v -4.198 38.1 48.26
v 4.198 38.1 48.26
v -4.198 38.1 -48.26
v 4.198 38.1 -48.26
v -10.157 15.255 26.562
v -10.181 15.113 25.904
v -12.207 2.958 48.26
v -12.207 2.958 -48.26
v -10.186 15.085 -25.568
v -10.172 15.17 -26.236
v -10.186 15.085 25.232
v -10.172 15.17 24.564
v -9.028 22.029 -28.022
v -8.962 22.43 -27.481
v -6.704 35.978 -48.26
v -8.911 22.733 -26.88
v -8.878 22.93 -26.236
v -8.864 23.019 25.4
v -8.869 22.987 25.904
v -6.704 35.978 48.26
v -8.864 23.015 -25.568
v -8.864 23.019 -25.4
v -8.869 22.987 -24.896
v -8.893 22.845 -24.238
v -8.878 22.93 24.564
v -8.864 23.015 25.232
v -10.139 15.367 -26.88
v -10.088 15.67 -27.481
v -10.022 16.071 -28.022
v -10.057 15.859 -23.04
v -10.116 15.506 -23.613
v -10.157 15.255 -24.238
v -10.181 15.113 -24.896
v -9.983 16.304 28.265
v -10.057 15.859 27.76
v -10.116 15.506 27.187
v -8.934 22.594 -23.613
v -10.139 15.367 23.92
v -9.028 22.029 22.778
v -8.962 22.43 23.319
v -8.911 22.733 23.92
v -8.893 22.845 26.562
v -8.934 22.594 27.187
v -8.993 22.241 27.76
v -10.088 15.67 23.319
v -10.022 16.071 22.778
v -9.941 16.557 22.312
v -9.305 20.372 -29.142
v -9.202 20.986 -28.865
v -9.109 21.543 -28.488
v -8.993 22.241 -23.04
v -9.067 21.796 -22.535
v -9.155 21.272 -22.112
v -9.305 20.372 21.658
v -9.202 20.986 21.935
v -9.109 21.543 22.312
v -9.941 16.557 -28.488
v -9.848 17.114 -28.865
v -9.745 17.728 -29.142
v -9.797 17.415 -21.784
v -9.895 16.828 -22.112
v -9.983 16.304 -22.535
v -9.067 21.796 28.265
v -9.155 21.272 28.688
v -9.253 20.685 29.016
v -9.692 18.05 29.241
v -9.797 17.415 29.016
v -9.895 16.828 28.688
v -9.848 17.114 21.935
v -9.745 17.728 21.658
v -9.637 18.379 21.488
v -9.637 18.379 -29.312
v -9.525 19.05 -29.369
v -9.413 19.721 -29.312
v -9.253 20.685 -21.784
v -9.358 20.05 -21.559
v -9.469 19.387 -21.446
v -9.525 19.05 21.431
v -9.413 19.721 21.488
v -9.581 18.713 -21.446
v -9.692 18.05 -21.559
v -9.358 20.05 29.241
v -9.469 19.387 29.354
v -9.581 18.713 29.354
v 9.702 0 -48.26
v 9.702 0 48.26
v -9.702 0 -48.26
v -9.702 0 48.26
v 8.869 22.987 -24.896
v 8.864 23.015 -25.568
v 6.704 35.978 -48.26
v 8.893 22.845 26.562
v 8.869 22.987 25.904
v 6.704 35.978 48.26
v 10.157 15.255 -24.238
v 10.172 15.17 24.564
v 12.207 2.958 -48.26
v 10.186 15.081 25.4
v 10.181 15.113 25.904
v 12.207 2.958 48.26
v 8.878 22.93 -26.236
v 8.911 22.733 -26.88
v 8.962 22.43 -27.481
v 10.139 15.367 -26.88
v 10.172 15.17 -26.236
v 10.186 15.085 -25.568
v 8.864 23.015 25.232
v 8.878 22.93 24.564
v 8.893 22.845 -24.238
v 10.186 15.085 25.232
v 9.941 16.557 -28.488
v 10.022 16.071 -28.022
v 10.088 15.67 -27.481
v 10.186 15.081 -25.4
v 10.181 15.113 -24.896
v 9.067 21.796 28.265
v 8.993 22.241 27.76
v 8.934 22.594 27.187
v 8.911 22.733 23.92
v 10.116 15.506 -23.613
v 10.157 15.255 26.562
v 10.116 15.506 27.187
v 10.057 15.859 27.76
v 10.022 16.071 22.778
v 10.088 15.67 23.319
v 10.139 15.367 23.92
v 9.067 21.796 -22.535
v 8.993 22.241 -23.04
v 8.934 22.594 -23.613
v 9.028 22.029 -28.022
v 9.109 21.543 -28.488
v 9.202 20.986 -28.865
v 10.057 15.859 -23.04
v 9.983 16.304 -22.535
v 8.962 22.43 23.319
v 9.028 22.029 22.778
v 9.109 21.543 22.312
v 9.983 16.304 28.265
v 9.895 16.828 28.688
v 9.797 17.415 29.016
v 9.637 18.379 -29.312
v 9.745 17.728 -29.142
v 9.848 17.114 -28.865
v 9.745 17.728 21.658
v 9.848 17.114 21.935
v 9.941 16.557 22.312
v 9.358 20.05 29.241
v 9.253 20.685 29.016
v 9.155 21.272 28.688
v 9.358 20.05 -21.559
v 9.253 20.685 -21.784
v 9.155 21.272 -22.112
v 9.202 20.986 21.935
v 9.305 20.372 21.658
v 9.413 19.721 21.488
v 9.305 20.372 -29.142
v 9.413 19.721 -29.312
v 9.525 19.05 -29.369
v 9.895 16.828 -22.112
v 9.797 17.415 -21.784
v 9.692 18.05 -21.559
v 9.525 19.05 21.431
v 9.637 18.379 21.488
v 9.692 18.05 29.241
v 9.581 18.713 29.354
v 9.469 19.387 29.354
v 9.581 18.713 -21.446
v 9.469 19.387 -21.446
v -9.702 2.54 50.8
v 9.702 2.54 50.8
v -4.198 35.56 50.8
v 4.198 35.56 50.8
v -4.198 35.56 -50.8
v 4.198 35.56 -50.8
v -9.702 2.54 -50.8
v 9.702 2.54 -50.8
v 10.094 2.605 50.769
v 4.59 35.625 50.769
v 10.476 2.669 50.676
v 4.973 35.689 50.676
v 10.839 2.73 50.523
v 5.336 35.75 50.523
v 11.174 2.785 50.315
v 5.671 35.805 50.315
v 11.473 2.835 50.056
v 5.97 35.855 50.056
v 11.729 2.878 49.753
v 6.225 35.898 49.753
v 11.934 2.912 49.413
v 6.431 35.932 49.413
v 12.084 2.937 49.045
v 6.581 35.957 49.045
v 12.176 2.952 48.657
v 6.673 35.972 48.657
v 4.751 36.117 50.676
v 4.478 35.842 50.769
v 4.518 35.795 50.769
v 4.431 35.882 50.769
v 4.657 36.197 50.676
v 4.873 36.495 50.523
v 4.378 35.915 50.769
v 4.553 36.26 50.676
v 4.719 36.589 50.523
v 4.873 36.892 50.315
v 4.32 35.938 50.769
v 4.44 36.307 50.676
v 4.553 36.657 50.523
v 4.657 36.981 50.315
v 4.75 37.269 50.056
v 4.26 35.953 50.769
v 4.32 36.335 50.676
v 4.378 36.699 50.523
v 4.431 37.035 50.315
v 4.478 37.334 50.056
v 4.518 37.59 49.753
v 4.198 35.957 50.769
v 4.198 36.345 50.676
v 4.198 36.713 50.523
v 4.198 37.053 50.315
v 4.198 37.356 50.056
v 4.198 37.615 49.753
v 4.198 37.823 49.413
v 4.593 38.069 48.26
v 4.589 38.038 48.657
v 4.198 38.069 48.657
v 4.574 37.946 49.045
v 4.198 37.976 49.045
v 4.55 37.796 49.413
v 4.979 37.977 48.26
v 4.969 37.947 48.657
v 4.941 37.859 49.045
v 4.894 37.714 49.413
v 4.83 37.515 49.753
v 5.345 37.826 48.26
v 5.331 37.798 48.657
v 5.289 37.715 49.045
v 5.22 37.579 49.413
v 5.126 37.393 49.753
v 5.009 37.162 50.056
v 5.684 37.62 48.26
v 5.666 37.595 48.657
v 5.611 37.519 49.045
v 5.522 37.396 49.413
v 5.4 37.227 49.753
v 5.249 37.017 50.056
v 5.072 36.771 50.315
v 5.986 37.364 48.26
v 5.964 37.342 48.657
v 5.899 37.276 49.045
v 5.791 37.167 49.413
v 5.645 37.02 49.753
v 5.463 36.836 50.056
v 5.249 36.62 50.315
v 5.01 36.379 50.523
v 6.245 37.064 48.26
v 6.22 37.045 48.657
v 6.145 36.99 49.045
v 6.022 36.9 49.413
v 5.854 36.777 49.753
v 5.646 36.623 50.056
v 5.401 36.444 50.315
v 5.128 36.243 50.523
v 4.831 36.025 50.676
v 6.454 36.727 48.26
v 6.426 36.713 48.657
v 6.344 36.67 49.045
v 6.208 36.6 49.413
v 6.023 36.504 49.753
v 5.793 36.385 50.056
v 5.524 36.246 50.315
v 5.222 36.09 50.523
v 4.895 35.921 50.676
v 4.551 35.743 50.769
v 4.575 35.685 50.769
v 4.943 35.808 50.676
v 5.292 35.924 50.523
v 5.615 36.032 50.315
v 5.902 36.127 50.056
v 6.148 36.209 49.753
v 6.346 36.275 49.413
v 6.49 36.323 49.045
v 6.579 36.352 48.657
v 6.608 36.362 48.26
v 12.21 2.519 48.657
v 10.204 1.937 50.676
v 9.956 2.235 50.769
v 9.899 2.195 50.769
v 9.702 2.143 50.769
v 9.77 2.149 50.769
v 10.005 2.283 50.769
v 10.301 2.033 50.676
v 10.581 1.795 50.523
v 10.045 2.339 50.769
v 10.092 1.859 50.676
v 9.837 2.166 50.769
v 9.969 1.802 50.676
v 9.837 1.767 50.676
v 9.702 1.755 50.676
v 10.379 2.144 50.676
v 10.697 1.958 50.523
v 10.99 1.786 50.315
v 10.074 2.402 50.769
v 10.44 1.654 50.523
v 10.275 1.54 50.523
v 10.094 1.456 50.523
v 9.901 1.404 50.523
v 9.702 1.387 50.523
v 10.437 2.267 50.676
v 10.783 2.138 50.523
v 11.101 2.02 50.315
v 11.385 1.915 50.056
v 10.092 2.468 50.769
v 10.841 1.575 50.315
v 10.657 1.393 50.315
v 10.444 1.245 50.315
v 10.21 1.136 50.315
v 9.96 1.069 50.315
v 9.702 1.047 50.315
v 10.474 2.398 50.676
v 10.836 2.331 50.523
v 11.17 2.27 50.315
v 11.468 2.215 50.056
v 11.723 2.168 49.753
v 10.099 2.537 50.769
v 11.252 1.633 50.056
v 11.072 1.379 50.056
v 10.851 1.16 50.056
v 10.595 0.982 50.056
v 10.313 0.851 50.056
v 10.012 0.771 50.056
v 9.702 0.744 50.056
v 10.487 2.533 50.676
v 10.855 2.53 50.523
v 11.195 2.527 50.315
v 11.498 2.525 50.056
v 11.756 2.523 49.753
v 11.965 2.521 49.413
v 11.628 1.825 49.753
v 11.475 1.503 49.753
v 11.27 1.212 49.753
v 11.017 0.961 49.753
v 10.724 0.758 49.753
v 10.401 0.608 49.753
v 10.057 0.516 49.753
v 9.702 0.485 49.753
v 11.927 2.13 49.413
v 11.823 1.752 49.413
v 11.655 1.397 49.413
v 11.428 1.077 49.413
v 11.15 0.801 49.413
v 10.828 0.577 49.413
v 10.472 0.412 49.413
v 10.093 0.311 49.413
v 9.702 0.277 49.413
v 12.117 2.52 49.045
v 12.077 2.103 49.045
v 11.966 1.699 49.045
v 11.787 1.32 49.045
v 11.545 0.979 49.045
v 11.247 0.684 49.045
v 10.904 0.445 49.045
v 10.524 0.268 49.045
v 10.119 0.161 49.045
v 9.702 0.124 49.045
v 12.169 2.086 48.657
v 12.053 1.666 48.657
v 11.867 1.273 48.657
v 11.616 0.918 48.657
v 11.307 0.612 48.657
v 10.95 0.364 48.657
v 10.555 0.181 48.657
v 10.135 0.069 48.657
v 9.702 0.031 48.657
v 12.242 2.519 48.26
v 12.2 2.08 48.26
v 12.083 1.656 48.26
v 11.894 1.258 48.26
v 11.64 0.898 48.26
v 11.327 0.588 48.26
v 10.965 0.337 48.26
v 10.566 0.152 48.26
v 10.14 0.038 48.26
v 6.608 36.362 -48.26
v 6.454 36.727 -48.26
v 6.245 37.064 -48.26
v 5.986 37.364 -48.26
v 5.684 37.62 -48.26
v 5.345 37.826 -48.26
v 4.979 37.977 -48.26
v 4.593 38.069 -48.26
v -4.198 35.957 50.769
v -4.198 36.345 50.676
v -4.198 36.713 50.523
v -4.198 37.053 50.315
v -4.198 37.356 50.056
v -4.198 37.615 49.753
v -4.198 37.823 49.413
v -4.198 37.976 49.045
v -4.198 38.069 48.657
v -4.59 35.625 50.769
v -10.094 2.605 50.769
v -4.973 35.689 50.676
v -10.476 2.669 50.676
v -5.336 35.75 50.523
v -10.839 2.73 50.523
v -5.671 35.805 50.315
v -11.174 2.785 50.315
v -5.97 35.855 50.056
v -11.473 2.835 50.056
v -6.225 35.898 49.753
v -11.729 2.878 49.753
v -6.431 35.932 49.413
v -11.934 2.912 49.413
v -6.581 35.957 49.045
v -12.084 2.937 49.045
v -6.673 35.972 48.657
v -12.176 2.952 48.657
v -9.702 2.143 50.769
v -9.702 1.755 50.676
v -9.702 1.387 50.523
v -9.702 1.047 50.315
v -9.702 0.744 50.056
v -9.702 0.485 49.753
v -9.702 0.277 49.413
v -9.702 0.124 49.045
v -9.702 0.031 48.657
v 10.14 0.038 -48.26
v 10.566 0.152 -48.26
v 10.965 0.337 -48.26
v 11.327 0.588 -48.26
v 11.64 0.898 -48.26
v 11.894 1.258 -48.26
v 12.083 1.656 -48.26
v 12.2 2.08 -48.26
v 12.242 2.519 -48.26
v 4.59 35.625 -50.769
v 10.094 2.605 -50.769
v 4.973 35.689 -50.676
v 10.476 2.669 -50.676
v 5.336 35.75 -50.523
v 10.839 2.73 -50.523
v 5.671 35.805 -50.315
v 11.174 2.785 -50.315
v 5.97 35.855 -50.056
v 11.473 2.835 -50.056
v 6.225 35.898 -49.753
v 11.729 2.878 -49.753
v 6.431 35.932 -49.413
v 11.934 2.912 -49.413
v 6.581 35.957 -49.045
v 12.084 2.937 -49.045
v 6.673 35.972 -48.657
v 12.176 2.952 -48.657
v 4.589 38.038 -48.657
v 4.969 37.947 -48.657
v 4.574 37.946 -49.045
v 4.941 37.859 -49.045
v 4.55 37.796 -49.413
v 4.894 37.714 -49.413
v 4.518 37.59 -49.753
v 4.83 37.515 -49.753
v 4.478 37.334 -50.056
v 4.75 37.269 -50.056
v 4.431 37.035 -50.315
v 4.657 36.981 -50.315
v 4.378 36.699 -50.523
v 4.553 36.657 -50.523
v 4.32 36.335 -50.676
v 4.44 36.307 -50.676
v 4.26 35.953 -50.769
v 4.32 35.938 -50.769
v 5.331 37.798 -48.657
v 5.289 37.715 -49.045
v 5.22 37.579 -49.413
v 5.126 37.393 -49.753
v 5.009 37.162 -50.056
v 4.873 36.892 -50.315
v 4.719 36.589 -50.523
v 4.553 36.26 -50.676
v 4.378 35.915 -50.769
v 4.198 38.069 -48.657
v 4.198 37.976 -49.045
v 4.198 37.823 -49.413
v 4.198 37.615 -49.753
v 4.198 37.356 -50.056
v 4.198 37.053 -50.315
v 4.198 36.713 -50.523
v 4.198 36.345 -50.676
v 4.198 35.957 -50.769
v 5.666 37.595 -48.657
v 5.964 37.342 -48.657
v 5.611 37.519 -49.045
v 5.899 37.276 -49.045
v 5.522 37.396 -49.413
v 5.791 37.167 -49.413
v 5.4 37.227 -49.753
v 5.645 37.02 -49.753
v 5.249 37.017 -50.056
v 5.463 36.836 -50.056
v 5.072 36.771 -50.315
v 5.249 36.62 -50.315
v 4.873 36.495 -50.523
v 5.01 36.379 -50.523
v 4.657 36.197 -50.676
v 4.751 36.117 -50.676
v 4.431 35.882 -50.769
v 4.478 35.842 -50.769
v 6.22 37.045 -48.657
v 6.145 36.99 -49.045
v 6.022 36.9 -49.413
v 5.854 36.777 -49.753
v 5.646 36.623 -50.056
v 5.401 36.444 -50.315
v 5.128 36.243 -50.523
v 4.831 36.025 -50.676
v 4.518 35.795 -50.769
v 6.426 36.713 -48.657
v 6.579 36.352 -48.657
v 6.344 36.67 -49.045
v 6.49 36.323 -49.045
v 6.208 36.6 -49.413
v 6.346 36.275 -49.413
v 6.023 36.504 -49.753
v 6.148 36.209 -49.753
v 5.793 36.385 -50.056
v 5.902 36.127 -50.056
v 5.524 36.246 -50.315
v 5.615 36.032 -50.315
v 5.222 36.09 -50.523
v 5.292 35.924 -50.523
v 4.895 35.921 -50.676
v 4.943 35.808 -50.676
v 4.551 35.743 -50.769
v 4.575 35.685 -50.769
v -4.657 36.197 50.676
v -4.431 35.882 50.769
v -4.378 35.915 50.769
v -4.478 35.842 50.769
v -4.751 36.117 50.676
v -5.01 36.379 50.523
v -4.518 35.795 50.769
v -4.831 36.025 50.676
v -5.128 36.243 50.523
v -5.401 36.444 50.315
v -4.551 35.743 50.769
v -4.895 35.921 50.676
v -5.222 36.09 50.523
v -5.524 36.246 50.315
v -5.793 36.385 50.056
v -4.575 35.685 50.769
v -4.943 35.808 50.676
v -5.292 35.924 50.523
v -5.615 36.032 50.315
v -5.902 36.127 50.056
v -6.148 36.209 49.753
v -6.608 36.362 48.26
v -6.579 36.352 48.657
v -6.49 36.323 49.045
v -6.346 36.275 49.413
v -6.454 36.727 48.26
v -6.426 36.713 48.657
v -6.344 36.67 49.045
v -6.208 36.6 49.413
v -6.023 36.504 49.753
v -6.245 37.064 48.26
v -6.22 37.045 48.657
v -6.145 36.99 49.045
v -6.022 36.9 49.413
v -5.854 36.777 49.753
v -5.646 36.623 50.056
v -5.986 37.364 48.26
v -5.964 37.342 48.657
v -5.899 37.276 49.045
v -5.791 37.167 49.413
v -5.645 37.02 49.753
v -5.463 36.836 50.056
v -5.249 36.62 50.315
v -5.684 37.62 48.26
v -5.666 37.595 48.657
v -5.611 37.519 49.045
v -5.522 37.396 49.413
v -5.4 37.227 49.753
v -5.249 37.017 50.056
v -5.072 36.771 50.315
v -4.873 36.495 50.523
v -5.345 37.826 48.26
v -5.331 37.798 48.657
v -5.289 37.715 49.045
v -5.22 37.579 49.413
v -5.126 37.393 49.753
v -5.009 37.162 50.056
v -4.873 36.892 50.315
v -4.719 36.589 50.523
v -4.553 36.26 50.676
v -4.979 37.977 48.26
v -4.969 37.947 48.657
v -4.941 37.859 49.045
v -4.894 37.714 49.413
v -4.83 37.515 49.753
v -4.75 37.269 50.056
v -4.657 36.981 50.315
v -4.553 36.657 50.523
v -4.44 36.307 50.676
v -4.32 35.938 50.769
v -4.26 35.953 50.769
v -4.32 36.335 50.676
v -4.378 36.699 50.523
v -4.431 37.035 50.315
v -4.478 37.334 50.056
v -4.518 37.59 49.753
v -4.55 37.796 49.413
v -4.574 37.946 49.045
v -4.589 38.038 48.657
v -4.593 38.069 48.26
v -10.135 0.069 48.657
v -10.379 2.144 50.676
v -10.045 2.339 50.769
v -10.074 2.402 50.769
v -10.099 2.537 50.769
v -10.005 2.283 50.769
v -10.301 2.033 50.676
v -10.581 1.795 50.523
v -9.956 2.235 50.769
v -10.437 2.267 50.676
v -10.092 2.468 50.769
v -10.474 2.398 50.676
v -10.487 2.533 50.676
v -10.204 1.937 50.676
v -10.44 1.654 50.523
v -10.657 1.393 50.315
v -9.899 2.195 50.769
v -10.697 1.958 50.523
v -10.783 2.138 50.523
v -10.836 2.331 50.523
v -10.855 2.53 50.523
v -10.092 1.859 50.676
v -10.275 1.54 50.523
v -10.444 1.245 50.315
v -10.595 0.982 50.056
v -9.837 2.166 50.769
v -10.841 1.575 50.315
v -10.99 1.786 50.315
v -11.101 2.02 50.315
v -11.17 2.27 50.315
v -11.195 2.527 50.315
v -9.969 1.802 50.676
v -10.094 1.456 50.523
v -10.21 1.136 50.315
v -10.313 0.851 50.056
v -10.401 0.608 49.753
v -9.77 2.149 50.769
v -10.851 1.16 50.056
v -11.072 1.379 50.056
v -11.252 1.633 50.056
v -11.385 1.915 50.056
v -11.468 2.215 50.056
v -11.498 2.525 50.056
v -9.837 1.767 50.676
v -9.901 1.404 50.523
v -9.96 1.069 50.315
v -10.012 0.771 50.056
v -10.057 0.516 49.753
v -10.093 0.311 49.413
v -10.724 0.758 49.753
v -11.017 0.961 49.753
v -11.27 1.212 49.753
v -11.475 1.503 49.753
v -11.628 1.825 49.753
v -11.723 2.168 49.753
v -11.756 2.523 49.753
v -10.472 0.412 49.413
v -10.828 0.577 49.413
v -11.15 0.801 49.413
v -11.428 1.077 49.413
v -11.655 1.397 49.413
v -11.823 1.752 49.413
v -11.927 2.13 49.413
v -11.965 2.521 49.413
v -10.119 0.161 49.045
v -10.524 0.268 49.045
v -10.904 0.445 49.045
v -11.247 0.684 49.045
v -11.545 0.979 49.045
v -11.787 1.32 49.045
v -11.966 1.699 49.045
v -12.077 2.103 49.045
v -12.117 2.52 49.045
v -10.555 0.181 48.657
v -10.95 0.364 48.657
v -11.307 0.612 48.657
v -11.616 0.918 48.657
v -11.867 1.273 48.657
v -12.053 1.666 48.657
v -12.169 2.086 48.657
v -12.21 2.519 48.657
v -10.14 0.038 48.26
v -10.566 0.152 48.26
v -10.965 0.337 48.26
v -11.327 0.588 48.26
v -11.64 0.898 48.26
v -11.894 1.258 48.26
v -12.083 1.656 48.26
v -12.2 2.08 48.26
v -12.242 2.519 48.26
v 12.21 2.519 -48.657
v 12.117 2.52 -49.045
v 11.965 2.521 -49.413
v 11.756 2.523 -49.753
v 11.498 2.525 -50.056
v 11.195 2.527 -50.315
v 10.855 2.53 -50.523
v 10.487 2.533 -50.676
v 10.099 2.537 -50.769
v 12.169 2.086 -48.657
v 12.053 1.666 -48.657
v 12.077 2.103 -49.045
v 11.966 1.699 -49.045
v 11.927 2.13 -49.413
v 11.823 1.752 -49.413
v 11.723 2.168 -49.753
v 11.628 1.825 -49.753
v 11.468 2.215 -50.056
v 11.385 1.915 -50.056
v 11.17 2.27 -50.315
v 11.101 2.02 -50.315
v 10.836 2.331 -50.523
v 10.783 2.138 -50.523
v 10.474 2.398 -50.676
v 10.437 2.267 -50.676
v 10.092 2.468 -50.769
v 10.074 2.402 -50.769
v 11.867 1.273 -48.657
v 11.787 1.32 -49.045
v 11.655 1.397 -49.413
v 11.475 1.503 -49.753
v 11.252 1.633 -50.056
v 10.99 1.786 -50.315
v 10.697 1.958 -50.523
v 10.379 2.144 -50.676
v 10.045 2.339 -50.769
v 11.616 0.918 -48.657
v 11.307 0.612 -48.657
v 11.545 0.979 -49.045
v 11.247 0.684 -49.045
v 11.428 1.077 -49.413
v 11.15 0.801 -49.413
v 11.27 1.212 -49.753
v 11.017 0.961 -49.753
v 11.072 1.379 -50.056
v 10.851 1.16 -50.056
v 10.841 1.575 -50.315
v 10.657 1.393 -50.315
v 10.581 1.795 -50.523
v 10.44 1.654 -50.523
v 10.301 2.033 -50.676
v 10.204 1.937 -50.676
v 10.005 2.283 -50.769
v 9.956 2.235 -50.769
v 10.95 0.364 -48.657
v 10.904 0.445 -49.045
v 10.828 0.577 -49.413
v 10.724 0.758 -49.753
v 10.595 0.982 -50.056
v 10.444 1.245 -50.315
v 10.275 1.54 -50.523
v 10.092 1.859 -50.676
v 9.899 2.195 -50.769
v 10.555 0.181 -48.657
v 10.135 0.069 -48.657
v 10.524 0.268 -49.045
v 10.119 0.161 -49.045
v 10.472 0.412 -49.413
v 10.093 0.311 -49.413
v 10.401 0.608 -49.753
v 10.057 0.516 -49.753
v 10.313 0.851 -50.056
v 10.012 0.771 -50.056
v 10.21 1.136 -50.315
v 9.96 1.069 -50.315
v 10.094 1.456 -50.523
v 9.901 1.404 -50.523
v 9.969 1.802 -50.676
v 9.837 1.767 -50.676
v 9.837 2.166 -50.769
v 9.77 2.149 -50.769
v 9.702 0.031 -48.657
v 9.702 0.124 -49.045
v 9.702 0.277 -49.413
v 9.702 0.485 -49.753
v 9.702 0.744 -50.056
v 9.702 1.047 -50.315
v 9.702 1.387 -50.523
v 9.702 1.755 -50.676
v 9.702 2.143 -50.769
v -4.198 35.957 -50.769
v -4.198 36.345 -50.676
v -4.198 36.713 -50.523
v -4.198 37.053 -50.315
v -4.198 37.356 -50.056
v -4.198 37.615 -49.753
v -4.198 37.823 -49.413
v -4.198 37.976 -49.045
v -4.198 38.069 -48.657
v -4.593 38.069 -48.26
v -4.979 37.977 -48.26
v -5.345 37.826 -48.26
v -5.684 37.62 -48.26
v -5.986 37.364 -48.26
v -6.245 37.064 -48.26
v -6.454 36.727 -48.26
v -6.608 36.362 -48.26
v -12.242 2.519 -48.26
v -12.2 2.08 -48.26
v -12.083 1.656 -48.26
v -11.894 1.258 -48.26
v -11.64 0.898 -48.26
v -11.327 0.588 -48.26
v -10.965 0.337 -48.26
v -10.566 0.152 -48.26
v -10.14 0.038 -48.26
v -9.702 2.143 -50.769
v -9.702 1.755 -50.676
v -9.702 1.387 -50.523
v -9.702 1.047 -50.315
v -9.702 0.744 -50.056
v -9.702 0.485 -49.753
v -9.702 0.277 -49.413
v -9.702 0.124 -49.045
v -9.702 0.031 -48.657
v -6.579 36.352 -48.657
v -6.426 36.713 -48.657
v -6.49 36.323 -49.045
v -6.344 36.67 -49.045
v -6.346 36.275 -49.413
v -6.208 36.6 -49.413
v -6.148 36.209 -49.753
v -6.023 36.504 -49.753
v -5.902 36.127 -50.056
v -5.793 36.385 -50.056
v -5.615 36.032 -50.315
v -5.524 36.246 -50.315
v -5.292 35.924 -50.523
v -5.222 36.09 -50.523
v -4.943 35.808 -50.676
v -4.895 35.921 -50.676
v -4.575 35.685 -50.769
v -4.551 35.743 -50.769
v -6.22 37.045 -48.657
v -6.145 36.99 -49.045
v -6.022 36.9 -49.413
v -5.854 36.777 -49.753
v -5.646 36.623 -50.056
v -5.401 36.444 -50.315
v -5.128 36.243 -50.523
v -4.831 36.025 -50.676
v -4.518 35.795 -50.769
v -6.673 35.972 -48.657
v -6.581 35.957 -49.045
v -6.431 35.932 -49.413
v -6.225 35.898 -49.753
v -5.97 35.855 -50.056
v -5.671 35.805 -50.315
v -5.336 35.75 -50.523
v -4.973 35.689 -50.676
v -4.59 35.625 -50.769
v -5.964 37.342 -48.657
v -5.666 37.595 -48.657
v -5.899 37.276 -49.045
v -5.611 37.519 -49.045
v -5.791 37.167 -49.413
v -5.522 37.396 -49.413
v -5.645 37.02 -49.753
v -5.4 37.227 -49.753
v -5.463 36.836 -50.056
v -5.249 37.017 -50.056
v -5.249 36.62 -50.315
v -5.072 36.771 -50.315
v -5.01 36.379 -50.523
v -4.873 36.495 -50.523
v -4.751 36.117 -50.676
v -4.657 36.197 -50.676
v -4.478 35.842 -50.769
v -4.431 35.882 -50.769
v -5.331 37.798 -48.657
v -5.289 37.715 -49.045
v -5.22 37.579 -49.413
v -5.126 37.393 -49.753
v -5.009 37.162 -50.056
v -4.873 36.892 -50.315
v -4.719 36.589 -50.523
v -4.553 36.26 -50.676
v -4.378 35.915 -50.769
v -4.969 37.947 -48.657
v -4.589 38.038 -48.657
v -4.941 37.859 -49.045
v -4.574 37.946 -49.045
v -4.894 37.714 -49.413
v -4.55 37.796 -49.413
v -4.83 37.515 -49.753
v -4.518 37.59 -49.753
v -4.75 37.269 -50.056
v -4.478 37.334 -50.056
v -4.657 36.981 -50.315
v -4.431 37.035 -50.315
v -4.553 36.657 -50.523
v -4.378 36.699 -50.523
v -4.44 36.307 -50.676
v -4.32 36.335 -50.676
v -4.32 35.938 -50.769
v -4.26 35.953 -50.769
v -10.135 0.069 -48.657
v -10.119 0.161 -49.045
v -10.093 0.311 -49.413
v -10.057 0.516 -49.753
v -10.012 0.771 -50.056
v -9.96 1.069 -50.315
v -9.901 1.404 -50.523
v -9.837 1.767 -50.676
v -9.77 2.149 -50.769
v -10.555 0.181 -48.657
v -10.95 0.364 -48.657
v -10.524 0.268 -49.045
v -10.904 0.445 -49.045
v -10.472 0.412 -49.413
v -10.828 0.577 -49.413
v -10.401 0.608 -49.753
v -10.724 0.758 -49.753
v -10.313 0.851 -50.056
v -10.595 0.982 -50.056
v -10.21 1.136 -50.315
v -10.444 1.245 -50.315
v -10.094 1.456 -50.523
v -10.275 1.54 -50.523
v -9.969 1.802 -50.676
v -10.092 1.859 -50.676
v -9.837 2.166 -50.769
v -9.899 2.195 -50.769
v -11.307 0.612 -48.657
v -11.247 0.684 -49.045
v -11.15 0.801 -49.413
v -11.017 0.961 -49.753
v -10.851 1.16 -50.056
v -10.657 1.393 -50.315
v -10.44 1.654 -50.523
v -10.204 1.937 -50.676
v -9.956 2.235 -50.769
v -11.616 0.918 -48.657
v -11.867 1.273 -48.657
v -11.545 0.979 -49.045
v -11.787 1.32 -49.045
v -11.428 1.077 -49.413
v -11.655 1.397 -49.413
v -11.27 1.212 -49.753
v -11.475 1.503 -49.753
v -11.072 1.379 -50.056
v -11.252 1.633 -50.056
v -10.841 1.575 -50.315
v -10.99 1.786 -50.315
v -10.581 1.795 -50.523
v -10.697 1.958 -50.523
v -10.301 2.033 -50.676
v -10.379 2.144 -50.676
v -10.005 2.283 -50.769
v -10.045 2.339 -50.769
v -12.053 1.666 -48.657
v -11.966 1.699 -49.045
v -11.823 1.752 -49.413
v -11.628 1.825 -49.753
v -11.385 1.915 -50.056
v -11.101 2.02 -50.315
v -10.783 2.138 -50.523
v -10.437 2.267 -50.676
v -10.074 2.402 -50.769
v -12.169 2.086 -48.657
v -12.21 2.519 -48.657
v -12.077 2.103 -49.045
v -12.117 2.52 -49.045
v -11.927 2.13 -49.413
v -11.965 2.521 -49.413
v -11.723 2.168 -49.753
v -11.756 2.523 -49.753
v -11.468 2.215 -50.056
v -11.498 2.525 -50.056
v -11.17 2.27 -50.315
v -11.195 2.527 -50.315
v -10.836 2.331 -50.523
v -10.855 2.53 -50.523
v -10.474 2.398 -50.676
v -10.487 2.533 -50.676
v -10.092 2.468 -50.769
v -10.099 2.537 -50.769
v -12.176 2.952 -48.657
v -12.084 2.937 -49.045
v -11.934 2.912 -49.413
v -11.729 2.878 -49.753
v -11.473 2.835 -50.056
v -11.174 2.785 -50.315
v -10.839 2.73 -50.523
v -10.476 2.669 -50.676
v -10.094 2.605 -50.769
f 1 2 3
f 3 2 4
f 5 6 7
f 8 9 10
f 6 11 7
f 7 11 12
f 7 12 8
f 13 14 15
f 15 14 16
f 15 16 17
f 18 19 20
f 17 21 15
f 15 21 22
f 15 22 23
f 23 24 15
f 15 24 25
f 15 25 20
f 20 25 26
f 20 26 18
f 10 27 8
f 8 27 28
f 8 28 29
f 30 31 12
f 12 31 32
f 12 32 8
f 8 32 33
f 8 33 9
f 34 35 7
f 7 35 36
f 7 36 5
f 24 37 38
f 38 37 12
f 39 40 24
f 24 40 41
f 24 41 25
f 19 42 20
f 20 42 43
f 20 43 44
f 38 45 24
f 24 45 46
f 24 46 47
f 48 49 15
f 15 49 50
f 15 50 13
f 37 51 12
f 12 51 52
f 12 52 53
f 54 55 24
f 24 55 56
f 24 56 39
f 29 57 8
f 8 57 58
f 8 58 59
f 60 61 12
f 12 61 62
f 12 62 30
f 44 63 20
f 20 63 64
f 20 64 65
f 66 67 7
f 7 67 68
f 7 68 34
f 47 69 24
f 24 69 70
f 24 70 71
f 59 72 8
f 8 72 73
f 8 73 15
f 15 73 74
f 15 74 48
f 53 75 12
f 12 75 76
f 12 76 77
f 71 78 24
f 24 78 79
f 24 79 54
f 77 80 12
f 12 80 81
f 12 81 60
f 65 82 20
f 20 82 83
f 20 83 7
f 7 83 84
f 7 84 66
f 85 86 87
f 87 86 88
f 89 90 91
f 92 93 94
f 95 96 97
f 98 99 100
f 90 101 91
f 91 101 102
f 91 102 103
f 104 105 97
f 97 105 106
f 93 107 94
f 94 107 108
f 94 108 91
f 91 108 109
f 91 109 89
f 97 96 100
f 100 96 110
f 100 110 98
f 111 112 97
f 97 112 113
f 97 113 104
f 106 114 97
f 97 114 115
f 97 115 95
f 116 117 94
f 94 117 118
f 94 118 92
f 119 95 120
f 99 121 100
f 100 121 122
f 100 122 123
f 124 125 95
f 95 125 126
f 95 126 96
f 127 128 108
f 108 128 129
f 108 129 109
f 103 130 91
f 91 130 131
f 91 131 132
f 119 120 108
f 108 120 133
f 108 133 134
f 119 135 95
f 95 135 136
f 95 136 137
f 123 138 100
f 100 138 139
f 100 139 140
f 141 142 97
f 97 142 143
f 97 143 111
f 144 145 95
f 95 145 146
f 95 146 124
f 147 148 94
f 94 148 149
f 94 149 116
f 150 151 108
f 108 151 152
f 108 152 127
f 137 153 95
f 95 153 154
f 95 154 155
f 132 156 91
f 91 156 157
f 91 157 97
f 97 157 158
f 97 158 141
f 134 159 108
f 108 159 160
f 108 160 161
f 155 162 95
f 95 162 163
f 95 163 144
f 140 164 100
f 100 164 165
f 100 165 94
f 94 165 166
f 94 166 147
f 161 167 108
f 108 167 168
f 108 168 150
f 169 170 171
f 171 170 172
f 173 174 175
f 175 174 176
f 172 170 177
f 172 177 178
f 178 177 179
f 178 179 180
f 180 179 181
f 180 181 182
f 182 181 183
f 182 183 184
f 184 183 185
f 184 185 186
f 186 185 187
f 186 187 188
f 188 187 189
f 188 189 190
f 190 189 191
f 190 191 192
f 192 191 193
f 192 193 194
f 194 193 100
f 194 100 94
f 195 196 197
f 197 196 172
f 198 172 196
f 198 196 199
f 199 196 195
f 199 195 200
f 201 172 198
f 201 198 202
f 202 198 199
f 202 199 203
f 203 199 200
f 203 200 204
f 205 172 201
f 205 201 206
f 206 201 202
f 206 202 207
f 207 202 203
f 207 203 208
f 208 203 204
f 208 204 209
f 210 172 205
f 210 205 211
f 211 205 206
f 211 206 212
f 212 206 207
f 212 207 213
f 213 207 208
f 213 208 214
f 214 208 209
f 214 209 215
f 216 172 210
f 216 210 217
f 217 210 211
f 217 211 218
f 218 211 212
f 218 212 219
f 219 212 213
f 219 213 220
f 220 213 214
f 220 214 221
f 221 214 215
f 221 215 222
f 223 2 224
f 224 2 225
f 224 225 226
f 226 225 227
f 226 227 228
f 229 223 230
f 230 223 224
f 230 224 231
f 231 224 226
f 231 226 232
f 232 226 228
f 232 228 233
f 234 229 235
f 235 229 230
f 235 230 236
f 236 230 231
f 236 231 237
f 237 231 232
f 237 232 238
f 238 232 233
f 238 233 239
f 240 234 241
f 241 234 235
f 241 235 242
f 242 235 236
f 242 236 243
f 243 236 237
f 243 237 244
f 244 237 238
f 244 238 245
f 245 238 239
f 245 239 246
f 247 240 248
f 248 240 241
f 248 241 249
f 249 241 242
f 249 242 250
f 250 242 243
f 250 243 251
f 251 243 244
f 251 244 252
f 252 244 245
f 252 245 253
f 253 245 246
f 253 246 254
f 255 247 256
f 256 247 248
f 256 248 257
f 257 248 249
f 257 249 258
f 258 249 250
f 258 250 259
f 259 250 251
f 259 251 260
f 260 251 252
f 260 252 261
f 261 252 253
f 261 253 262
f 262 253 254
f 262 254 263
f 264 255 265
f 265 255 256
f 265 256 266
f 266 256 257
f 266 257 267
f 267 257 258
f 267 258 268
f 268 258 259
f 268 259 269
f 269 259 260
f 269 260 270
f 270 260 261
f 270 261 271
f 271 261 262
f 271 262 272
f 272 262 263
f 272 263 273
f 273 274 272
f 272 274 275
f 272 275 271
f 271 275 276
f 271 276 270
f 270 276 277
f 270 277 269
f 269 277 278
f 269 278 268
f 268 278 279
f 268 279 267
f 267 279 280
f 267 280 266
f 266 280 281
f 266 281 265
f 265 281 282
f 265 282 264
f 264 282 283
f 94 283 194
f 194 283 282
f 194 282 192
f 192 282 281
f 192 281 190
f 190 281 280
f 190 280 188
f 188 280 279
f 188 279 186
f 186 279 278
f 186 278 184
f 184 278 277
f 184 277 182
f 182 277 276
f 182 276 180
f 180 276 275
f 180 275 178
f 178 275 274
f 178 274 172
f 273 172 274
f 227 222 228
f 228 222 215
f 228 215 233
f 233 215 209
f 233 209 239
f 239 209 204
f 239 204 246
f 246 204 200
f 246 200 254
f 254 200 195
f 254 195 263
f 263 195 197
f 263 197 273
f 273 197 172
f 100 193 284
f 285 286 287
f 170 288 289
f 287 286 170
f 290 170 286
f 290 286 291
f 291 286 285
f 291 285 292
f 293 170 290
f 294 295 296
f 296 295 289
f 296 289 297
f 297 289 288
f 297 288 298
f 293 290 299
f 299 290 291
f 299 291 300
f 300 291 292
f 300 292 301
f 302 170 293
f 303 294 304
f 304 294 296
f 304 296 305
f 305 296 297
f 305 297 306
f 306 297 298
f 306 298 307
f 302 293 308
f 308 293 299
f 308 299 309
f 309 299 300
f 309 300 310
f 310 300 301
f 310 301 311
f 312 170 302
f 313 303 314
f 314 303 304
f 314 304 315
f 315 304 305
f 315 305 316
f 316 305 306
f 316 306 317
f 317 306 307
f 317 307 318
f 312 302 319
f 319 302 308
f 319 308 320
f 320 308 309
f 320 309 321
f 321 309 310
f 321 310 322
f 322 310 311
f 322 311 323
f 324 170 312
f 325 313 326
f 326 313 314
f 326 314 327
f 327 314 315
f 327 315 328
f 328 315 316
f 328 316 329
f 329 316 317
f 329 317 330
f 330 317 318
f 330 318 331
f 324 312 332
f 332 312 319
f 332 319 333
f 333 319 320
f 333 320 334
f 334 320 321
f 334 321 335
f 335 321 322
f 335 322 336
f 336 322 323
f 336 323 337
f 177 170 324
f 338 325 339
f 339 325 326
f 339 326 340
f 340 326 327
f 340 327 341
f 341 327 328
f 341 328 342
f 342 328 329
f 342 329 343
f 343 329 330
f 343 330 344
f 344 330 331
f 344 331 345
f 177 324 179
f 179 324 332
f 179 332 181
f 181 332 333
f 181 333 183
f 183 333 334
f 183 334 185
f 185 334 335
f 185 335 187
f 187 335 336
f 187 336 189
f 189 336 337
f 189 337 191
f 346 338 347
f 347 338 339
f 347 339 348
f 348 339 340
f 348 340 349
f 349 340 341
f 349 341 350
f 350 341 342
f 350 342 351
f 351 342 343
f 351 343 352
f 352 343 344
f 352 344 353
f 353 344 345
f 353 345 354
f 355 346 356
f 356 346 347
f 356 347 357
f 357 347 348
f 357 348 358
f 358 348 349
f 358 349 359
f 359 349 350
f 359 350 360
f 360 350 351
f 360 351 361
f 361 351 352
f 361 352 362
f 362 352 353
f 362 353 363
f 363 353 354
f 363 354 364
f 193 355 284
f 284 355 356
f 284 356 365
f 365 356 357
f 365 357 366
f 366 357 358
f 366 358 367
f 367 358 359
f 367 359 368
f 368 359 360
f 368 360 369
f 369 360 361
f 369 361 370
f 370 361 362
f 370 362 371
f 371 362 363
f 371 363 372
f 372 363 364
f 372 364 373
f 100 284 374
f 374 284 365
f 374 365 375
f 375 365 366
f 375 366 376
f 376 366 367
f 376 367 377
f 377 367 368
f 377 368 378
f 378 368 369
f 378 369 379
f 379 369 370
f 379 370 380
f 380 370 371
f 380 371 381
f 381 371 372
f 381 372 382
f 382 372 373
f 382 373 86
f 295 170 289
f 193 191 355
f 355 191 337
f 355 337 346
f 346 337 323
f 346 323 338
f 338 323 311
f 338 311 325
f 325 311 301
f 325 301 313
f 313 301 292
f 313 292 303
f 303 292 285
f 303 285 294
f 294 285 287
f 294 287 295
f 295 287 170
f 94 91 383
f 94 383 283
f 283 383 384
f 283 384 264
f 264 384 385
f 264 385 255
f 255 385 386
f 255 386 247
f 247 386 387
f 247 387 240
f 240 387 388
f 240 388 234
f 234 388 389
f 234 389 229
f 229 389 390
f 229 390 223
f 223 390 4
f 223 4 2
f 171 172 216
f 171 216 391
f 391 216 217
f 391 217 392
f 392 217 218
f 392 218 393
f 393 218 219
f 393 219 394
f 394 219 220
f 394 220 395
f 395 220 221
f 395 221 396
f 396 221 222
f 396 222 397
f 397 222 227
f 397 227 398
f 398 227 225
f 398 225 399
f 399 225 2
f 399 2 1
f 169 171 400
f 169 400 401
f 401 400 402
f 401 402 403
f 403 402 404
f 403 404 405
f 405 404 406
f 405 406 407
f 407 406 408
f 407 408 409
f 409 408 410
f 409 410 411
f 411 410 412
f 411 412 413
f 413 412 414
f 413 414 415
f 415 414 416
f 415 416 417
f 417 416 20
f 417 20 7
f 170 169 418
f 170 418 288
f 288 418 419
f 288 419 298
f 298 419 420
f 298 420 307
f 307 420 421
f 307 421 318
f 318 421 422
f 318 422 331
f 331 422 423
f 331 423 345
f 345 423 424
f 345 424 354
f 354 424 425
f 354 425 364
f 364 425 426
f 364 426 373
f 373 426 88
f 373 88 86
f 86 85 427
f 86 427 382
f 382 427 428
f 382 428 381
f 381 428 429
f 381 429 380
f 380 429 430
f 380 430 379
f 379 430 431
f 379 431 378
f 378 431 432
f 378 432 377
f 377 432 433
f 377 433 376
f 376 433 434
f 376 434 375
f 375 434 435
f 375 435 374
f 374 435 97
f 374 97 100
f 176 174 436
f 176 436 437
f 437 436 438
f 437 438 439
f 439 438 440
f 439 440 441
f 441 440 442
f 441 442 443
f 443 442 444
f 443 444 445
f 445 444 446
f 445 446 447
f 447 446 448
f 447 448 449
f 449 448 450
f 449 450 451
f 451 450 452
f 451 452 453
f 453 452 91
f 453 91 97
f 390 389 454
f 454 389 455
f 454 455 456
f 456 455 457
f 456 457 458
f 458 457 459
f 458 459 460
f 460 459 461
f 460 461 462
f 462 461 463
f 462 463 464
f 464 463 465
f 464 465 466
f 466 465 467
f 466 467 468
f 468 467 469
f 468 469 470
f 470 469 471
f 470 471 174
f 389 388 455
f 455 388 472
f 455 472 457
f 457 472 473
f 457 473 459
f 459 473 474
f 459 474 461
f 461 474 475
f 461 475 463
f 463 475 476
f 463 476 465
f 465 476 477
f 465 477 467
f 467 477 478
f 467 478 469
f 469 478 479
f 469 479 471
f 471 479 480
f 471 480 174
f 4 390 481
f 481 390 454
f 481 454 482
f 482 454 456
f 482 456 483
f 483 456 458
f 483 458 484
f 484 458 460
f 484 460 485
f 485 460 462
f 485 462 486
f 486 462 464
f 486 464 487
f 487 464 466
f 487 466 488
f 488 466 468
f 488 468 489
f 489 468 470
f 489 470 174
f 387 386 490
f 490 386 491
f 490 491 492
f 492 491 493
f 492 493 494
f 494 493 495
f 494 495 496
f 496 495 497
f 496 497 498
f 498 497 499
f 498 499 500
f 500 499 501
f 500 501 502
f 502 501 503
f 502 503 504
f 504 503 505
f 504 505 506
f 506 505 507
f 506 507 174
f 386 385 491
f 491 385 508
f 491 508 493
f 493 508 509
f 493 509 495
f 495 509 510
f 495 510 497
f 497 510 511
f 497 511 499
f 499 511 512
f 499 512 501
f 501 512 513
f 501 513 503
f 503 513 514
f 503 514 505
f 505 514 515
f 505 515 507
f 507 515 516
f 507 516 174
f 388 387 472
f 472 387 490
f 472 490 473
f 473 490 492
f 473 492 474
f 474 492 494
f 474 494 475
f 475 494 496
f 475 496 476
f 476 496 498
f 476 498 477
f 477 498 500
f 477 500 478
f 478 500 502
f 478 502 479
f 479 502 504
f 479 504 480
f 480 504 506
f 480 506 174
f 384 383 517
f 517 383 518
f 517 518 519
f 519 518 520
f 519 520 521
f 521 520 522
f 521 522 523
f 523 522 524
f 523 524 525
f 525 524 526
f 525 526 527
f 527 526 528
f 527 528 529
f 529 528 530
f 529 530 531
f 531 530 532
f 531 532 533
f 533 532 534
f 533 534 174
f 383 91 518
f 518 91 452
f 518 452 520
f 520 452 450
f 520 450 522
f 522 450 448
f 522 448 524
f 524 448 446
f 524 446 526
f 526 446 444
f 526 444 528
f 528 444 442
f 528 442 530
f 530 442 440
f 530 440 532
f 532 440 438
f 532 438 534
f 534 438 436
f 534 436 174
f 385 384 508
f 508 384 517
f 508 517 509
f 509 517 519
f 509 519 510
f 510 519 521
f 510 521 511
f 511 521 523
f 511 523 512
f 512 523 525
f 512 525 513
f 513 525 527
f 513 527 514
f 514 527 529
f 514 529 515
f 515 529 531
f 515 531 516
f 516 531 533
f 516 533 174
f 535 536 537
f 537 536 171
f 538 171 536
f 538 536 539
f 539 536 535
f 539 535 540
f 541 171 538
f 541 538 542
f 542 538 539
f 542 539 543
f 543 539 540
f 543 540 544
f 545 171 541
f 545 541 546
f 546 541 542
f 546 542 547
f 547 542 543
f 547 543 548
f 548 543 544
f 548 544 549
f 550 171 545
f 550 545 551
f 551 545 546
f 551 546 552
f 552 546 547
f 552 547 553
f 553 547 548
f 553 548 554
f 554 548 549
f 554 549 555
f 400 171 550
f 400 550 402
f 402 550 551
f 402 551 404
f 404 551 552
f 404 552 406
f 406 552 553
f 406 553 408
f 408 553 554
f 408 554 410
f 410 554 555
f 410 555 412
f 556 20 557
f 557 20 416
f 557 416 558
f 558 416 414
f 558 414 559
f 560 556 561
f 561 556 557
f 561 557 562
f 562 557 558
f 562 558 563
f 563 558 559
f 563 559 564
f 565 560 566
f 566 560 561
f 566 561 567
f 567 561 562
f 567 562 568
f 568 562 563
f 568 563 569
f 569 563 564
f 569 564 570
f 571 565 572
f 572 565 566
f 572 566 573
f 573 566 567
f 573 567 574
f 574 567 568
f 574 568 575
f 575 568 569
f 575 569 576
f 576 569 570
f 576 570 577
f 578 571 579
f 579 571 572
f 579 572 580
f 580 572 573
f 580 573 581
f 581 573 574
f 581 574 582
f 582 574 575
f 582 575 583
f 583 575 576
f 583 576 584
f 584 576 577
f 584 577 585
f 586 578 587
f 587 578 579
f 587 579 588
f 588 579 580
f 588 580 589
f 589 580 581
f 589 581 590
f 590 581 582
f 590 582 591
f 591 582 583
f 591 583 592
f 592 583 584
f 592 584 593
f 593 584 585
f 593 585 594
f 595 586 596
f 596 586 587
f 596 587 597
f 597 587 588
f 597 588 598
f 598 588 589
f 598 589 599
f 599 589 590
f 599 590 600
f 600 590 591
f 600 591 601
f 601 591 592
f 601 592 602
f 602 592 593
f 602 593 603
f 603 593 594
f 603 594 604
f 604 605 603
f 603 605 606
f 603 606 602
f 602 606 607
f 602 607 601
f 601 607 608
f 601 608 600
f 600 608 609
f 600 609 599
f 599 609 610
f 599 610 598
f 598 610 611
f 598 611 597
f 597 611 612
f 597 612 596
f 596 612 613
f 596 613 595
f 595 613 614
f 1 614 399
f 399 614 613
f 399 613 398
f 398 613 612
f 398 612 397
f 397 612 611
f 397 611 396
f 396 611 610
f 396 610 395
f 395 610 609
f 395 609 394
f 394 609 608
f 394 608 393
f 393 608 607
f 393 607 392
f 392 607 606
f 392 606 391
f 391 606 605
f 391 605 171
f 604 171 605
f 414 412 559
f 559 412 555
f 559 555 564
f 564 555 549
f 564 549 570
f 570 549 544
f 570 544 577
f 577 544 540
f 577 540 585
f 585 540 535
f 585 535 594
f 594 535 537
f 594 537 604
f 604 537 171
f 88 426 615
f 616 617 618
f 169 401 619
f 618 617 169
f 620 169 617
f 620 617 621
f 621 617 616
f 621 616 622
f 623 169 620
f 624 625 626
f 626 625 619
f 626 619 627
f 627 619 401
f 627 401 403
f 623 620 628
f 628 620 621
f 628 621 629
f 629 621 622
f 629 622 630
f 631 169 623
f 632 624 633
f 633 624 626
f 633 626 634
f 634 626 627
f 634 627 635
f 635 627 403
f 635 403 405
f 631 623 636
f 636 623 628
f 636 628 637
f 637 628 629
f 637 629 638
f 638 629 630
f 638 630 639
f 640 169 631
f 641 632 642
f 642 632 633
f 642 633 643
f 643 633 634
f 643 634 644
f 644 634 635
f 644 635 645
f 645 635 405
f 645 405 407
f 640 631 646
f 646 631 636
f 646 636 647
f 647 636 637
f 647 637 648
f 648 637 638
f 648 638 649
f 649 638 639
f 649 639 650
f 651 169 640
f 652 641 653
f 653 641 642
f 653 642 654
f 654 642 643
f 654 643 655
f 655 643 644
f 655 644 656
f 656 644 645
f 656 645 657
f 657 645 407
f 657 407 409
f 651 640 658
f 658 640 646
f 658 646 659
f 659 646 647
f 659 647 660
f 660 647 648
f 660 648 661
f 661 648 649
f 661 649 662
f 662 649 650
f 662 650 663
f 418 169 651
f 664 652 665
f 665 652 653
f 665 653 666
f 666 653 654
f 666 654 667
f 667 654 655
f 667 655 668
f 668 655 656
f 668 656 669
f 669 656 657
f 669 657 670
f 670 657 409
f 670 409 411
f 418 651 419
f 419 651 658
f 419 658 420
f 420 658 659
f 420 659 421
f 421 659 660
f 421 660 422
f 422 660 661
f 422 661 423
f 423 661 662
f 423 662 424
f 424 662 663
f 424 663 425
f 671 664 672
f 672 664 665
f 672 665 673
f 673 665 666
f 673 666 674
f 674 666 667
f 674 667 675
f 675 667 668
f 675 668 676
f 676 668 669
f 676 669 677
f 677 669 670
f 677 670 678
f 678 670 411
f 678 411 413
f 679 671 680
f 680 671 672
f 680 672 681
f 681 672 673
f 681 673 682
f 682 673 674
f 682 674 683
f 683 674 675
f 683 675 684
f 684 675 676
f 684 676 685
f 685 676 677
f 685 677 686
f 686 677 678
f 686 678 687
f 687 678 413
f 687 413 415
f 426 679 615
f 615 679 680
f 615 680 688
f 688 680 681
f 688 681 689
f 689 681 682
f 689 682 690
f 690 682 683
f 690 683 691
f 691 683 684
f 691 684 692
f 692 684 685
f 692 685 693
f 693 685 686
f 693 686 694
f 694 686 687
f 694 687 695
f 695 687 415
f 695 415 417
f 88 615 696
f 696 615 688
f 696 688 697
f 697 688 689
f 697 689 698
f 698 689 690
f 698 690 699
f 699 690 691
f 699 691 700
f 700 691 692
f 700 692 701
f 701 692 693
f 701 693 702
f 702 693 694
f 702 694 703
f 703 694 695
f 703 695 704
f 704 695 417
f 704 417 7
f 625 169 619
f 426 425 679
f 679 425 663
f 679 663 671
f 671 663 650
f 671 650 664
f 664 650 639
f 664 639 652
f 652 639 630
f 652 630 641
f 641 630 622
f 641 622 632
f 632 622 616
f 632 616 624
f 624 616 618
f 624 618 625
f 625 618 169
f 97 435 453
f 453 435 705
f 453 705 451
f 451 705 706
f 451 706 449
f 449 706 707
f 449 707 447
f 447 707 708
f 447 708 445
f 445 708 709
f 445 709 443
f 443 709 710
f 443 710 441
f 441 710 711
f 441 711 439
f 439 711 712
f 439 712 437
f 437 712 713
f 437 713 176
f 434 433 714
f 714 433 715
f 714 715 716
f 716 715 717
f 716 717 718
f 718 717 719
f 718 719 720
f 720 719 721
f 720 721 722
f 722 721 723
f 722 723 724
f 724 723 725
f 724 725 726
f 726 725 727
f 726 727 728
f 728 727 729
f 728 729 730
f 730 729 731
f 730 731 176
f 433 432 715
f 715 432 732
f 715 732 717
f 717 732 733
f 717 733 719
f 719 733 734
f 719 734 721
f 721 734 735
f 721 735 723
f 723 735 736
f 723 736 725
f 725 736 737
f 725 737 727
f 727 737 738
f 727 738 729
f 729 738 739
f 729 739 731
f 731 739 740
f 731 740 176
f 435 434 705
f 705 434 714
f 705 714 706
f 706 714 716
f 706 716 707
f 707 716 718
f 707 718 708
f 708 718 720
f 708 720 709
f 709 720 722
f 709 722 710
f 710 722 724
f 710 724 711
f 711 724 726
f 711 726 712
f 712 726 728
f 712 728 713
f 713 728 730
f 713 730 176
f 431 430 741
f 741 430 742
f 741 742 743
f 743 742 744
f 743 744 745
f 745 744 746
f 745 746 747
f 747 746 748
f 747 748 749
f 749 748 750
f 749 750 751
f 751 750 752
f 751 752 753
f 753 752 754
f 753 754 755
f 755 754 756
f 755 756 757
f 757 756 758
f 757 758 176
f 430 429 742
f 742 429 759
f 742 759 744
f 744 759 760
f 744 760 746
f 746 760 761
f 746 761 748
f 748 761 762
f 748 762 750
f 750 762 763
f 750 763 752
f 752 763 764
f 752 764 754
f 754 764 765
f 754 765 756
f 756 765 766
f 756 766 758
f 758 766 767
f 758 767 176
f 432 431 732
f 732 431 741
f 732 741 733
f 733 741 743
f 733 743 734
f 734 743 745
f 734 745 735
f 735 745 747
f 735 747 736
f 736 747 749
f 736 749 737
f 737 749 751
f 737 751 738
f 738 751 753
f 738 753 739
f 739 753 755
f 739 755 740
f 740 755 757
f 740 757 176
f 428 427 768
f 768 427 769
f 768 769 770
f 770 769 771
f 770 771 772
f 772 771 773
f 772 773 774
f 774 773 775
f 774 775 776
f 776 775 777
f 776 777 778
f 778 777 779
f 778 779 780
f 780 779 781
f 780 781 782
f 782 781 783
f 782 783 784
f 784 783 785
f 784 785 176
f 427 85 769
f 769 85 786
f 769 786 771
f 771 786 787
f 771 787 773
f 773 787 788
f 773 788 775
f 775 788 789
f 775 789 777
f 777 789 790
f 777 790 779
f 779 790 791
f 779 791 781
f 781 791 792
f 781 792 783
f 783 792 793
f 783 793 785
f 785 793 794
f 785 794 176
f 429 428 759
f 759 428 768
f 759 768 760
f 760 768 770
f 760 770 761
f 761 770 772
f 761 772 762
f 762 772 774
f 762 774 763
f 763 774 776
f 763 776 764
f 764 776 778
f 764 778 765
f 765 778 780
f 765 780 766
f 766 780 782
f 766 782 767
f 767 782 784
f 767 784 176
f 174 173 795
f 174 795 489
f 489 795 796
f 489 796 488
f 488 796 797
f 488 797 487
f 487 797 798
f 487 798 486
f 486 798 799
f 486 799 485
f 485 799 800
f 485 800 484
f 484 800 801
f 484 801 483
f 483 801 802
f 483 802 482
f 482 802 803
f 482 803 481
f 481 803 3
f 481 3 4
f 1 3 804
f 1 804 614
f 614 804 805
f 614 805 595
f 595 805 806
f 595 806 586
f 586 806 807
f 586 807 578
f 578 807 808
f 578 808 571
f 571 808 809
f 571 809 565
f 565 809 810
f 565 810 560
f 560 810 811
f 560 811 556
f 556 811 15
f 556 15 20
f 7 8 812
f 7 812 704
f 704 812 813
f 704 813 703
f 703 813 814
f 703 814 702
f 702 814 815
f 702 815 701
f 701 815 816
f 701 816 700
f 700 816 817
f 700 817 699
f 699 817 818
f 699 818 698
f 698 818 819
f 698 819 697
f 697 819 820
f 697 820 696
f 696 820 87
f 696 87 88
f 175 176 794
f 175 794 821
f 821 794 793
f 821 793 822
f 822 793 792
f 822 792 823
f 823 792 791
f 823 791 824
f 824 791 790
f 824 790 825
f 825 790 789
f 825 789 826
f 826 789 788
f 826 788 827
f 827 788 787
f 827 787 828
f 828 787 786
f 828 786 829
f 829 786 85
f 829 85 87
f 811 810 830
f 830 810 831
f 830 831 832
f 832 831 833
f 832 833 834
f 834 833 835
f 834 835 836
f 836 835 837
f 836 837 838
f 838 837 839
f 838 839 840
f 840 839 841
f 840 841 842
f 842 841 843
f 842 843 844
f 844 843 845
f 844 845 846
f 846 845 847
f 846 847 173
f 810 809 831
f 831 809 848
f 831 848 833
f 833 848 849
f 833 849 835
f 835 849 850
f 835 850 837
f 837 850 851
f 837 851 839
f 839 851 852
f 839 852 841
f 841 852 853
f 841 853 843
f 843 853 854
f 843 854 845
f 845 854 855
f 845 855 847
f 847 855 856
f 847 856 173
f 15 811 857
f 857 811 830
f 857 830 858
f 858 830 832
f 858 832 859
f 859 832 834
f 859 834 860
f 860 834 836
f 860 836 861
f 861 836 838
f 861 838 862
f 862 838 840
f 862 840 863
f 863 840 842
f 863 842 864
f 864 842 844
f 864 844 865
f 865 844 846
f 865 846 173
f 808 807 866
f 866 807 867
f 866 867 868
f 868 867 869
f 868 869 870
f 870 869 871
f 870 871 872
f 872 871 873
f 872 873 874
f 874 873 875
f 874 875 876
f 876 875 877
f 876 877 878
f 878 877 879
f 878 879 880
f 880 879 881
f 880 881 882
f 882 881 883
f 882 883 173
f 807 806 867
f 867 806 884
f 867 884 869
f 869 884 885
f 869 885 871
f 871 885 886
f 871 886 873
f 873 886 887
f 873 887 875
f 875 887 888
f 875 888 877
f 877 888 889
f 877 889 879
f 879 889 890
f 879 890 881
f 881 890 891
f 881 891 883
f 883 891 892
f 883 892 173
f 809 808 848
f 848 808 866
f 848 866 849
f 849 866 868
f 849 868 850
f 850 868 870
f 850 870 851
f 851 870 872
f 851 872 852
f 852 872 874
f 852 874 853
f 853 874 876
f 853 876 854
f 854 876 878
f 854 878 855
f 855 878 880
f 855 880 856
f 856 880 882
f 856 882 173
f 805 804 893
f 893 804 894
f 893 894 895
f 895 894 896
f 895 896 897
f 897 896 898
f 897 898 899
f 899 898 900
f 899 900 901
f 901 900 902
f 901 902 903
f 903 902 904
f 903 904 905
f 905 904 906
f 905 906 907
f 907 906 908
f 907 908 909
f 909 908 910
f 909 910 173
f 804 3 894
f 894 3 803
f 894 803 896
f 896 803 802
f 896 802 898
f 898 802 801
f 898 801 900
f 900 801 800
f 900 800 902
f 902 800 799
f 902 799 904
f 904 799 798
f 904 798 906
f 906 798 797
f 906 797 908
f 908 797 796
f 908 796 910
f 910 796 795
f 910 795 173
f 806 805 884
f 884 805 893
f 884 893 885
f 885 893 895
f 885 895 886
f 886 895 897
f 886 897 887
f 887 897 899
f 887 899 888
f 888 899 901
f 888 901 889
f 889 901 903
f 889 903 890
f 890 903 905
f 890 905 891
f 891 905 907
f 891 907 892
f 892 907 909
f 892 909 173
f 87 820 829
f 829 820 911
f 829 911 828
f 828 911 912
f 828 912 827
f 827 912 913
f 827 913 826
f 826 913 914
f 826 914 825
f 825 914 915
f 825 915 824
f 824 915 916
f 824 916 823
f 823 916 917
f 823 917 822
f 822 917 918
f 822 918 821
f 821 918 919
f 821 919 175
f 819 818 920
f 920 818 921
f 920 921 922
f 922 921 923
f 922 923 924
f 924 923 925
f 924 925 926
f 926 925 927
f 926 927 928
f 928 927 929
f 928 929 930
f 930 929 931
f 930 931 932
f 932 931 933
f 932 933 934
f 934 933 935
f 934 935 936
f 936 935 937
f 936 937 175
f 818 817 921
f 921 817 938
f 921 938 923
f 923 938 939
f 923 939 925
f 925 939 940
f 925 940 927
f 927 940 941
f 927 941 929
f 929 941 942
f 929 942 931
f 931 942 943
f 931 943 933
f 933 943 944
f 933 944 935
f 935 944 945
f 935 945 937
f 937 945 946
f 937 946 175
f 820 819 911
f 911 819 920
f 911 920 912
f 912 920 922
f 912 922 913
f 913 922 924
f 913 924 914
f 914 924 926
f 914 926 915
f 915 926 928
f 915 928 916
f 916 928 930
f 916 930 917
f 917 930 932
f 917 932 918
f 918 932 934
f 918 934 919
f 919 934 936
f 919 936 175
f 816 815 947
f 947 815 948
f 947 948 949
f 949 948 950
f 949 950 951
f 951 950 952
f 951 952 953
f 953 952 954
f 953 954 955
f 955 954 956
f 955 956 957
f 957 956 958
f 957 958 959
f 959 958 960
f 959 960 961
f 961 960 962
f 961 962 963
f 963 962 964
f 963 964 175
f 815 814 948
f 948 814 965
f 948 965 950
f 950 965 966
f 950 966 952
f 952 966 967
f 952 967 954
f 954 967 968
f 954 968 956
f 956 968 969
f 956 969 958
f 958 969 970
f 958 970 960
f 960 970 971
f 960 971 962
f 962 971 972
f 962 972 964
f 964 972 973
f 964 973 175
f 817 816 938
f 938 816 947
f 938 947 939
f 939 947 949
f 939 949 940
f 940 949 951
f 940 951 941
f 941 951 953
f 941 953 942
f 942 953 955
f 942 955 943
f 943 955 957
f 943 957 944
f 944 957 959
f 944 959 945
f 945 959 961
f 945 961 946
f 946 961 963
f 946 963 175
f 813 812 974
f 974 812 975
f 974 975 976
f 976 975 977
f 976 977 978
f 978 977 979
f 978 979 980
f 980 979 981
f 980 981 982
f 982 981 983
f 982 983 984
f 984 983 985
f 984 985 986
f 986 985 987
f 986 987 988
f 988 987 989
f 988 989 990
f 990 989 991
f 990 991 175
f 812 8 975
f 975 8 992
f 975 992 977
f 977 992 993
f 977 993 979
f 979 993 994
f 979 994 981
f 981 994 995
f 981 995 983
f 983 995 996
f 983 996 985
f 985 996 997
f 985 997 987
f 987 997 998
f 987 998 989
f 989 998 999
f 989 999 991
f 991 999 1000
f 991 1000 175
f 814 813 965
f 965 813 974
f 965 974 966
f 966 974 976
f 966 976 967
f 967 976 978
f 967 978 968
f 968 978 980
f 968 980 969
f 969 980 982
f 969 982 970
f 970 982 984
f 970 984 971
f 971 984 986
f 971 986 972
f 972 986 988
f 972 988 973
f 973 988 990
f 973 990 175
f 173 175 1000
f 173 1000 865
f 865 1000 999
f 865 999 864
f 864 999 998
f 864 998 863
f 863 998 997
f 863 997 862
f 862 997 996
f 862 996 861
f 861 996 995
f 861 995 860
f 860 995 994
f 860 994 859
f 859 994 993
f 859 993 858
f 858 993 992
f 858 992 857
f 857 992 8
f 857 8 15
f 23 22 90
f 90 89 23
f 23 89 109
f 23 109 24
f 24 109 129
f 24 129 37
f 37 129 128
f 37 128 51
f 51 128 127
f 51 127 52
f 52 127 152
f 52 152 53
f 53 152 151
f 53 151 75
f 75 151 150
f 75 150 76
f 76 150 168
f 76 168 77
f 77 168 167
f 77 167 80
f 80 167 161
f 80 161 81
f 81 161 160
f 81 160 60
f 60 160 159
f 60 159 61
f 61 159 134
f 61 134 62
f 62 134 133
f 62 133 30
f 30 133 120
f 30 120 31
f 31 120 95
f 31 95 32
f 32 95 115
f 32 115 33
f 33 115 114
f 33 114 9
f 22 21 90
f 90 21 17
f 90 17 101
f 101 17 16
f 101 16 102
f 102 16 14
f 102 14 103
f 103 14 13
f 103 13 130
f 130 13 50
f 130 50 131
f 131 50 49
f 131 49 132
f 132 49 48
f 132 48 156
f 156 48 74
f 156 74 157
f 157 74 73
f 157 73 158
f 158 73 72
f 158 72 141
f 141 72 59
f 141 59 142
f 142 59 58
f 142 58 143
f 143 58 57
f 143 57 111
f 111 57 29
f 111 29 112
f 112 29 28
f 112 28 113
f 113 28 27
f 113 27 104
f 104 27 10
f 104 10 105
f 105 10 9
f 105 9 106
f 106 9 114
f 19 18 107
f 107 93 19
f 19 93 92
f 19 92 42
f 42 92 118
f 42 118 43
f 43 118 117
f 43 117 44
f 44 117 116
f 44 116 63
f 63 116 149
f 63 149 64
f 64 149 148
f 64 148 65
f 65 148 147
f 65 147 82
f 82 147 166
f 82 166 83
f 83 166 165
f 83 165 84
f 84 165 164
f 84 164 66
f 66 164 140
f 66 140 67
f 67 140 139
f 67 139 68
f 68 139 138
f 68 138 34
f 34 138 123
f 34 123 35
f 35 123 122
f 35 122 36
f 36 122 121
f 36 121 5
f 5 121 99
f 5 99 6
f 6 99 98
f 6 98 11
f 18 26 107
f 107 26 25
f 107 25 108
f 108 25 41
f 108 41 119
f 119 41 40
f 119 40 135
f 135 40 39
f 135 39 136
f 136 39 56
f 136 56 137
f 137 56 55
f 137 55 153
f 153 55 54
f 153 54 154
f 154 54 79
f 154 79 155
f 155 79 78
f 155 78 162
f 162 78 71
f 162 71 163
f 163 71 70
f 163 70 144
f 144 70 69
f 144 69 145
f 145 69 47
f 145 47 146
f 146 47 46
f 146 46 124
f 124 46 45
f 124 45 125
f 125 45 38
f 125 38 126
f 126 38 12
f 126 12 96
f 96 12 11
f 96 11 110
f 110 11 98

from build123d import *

# Parameters (mm, degrees)
BOSS_EXTRUDE1_DEPTH     = 50.8
FILLET1_R               = 2.54
SKETCH4_R               = 3.96875
CUT_EXTRUDE1_DEPTH      = 13.241630529
CUT_EXTRUDE1_DEPTH_BACK = 13.241630529


with BuildPart() as part:
    # Sketch3 → Boss-Extrude1 (new body, symmetric)
    with BuildSketch(Plane.XY):
        Polygon((-12.7, 0), (12.7, 0), (6.35, 38.1), (-6.35, 38.1), align=None)
    extrude(amount=BOSS_EXTRUDE1_DEPTH, both=True)

    # Fillet1
    fillet1_edges = [part.edges().sort_by_distance(p)[0] for p in [
        (0, 0, 50.8),
        (9.525, 19.05, 50.8),
        (0, 38.1, 50.8),
        (9.525, 19.05, -50.8),
        (0, 0, -50.8),
        (-9.525, 19.05, -50.8),
        (0, 38.1, -50.8),
        (-9.525, 19.05, 50.8),
        (6.35, 38.1, 0),
        (12.7, 0, 0),
        (-12.7, 0, 0),
        (-6.35, 38.1, 0),
    ]]
    fillet(fillet1_edges, radius=FILLET1_R)

    # Sketch4 → Cut-Extrude1 (cut, two sides)
    with BuildSketch(Plane(origin=(0, 0, 0), x_dir=(0, 0, -1), z_dir=(1, 0, 0))) as cut_extrude1_sk:
        with Locations((-25.4, 19.05)):
            Circle(SKETCH4_R)
        with Locations((25.4, 19.05)):
            Circle(SKETCH4_R)
    extrude(amount=CUT_EXTRUDE1_DEPTH, mode=Mode.SUBTRACT)
    extrude(cut_extrude1_sk.sketch, amount=-CUT_EXTRUDE1_DEPTH_BACK, mode=Mode.SUBTRACT)


solid = part.part
